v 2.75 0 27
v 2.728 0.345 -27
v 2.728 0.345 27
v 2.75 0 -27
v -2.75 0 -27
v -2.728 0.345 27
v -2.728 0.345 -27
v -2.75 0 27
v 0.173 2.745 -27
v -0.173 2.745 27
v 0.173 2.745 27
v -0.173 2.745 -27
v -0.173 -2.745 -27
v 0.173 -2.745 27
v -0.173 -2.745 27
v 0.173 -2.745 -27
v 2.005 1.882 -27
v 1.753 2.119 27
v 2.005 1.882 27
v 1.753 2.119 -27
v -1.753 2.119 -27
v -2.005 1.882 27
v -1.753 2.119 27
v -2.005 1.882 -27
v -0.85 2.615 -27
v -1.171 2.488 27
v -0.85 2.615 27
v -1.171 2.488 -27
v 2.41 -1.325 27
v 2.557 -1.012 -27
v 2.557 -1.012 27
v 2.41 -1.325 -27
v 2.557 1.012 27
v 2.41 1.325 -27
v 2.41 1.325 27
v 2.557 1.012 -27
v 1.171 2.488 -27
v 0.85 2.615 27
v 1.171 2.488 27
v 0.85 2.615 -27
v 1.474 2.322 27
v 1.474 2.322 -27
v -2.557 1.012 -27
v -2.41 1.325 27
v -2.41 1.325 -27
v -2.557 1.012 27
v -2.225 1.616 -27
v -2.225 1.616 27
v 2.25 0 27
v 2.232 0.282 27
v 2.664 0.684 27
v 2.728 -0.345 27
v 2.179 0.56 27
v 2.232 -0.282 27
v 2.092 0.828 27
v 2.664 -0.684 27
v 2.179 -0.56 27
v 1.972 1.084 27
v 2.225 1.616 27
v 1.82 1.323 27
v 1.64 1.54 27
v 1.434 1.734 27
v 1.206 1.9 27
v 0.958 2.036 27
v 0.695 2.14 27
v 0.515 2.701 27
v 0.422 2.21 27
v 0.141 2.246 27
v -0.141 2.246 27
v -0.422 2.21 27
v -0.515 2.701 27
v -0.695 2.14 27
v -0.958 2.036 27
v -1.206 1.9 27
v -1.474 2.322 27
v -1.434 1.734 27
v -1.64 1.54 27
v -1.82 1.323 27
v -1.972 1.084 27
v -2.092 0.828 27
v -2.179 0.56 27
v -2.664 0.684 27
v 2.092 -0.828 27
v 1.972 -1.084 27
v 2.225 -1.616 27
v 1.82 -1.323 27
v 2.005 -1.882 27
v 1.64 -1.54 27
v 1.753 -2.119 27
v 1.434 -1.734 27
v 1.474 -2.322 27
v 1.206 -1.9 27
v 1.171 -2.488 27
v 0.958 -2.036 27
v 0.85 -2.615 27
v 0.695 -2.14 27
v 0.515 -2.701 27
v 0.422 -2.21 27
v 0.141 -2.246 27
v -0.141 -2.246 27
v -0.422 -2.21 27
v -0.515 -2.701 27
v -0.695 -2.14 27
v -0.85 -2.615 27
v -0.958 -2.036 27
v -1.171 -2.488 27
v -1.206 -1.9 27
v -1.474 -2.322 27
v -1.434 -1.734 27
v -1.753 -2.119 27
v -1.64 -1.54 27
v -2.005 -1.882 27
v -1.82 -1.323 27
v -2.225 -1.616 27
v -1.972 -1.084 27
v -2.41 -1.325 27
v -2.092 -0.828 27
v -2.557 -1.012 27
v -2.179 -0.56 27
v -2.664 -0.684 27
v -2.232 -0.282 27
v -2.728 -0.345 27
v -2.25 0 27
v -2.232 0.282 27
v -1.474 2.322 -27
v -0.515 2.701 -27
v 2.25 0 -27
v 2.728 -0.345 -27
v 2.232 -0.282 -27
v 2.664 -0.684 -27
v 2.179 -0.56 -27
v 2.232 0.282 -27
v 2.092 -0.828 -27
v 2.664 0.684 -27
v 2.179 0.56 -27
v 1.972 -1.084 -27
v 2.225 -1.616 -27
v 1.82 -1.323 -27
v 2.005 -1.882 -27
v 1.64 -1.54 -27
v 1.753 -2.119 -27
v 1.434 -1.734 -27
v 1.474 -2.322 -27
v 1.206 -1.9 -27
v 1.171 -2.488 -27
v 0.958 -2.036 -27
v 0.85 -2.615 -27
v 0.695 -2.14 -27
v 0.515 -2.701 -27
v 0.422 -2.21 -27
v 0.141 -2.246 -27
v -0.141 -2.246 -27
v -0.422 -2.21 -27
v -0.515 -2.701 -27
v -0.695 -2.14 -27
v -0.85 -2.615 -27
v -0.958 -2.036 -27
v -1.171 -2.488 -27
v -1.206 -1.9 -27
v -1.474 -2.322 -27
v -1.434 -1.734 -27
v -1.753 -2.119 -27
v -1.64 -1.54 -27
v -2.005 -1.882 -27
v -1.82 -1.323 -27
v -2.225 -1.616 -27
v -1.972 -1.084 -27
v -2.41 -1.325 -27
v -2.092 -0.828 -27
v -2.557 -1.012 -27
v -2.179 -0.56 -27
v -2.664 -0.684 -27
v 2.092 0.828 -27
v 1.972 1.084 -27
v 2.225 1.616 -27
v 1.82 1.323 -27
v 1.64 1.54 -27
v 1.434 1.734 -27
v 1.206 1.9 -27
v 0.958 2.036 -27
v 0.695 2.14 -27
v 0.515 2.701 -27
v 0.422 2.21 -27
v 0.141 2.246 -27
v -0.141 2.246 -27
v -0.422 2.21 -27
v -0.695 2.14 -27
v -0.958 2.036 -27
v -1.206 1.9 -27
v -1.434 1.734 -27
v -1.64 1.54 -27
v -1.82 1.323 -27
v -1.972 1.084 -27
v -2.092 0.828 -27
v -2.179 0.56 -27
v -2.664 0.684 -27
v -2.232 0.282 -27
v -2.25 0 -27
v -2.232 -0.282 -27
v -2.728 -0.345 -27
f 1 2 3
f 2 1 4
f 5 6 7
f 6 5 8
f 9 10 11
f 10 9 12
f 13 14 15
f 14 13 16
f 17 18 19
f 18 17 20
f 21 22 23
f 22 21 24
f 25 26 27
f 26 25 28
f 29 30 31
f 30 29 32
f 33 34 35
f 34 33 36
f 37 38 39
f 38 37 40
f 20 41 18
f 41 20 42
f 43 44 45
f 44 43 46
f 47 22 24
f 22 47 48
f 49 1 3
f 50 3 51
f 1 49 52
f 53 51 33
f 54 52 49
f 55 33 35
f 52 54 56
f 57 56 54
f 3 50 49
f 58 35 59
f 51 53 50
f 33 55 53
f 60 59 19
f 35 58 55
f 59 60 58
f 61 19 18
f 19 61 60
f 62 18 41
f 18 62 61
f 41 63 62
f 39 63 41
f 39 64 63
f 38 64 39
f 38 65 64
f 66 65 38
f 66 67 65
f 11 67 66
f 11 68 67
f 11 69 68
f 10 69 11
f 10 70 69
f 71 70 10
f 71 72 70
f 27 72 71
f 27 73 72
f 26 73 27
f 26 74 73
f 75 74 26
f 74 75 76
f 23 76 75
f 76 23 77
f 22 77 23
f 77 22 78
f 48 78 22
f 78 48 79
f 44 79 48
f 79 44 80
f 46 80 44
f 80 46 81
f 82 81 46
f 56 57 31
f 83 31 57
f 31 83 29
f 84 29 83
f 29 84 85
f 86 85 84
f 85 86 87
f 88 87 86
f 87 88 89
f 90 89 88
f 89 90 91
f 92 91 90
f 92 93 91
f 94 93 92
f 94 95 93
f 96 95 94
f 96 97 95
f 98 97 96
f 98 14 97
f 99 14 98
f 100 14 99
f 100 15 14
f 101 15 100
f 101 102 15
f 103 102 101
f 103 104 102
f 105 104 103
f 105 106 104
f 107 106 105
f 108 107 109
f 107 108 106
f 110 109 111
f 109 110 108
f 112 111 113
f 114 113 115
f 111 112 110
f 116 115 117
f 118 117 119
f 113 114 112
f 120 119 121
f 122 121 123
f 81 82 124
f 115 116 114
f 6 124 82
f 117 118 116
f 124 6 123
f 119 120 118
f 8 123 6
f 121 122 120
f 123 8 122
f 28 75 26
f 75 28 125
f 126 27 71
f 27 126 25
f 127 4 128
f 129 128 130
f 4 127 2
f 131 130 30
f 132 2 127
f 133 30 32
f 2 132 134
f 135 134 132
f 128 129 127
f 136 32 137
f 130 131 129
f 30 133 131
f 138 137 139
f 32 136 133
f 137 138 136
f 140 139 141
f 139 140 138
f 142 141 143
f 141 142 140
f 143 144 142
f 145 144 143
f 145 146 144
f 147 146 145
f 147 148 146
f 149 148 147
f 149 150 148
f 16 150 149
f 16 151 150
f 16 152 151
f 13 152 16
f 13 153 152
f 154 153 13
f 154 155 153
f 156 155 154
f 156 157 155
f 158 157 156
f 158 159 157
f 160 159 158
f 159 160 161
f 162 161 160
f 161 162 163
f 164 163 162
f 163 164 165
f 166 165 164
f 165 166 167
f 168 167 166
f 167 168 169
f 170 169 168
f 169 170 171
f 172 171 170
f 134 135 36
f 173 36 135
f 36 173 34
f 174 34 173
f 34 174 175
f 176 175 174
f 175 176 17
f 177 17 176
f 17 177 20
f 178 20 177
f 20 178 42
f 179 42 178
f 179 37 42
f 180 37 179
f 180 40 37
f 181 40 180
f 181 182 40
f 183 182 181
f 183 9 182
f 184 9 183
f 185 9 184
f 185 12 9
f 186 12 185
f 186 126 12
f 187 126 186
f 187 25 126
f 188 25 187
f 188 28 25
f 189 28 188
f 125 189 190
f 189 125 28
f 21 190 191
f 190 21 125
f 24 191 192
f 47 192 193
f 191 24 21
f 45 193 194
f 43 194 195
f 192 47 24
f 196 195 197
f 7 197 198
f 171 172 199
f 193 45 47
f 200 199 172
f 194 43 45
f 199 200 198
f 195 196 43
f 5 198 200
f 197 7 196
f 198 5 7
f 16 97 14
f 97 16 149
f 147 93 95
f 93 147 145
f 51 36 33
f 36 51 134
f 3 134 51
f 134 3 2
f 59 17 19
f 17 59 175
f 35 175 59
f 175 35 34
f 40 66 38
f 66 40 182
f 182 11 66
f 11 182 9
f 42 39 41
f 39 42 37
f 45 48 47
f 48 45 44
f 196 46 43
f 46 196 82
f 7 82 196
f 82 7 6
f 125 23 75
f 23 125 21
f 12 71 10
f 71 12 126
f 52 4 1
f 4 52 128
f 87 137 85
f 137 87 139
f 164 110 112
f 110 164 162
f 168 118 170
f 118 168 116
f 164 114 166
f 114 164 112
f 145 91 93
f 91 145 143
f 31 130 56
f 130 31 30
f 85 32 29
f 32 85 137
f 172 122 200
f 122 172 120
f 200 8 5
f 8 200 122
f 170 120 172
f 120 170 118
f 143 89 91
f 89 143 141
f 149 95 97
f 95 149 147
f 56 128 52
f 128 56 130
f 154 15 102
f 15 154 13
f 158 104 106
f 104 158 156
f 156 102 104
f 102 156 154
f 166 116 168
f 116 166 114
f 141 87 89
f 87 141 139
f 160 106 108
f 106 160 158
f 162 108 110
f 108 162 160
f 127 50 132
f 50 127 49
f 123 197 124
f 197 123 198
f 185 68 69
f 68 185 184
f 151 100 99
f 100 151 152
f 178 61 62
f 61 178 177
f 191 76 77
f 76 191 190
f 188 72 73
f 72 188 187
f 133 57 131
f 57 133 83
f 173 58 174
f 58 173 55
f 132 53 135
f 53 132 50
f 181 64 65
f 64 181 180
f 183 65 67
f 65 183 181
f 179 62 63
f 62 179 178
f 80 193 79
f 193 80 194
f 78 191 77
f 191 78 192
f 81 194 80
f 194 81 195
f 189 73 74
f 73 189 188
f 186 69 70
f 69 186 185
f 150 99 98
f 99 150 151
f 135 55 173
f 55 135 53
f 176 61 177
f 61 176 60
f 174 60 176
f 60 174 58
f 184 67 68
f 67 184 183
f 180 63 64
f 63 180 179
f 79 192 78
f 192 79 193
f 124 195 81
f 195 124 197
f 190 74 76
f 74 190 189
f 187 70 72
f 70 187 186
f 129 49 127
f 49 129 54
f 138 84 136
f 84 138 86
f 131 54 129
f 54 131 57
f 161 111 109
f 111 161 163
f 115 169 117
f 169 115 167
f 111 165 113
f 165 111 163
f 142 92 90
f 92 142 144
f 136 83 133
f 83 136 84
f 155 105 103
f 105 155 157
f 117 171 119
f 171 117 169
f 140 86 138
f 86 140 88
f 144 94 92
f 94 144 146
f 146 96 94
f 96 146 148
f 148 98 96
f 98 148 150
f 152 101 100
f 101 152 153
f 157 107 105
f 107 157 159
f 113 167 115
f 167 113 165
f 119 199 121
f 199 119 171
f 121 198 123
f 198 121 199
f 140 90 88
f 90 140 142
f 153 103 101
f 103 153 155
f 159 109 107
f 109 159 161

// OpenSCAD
$fn = 50;


difference() {
	union() {
		translate(v = [0, 0, -27.0000000000]) {
			cylinder(h = 54, r = 2.7500000000);
		}
	}
	union() {
		translate(v = [0, 0, -100.0000000000]) {
			cylinder(h = 200, r = 2.2500000000);
		}
	}
}
